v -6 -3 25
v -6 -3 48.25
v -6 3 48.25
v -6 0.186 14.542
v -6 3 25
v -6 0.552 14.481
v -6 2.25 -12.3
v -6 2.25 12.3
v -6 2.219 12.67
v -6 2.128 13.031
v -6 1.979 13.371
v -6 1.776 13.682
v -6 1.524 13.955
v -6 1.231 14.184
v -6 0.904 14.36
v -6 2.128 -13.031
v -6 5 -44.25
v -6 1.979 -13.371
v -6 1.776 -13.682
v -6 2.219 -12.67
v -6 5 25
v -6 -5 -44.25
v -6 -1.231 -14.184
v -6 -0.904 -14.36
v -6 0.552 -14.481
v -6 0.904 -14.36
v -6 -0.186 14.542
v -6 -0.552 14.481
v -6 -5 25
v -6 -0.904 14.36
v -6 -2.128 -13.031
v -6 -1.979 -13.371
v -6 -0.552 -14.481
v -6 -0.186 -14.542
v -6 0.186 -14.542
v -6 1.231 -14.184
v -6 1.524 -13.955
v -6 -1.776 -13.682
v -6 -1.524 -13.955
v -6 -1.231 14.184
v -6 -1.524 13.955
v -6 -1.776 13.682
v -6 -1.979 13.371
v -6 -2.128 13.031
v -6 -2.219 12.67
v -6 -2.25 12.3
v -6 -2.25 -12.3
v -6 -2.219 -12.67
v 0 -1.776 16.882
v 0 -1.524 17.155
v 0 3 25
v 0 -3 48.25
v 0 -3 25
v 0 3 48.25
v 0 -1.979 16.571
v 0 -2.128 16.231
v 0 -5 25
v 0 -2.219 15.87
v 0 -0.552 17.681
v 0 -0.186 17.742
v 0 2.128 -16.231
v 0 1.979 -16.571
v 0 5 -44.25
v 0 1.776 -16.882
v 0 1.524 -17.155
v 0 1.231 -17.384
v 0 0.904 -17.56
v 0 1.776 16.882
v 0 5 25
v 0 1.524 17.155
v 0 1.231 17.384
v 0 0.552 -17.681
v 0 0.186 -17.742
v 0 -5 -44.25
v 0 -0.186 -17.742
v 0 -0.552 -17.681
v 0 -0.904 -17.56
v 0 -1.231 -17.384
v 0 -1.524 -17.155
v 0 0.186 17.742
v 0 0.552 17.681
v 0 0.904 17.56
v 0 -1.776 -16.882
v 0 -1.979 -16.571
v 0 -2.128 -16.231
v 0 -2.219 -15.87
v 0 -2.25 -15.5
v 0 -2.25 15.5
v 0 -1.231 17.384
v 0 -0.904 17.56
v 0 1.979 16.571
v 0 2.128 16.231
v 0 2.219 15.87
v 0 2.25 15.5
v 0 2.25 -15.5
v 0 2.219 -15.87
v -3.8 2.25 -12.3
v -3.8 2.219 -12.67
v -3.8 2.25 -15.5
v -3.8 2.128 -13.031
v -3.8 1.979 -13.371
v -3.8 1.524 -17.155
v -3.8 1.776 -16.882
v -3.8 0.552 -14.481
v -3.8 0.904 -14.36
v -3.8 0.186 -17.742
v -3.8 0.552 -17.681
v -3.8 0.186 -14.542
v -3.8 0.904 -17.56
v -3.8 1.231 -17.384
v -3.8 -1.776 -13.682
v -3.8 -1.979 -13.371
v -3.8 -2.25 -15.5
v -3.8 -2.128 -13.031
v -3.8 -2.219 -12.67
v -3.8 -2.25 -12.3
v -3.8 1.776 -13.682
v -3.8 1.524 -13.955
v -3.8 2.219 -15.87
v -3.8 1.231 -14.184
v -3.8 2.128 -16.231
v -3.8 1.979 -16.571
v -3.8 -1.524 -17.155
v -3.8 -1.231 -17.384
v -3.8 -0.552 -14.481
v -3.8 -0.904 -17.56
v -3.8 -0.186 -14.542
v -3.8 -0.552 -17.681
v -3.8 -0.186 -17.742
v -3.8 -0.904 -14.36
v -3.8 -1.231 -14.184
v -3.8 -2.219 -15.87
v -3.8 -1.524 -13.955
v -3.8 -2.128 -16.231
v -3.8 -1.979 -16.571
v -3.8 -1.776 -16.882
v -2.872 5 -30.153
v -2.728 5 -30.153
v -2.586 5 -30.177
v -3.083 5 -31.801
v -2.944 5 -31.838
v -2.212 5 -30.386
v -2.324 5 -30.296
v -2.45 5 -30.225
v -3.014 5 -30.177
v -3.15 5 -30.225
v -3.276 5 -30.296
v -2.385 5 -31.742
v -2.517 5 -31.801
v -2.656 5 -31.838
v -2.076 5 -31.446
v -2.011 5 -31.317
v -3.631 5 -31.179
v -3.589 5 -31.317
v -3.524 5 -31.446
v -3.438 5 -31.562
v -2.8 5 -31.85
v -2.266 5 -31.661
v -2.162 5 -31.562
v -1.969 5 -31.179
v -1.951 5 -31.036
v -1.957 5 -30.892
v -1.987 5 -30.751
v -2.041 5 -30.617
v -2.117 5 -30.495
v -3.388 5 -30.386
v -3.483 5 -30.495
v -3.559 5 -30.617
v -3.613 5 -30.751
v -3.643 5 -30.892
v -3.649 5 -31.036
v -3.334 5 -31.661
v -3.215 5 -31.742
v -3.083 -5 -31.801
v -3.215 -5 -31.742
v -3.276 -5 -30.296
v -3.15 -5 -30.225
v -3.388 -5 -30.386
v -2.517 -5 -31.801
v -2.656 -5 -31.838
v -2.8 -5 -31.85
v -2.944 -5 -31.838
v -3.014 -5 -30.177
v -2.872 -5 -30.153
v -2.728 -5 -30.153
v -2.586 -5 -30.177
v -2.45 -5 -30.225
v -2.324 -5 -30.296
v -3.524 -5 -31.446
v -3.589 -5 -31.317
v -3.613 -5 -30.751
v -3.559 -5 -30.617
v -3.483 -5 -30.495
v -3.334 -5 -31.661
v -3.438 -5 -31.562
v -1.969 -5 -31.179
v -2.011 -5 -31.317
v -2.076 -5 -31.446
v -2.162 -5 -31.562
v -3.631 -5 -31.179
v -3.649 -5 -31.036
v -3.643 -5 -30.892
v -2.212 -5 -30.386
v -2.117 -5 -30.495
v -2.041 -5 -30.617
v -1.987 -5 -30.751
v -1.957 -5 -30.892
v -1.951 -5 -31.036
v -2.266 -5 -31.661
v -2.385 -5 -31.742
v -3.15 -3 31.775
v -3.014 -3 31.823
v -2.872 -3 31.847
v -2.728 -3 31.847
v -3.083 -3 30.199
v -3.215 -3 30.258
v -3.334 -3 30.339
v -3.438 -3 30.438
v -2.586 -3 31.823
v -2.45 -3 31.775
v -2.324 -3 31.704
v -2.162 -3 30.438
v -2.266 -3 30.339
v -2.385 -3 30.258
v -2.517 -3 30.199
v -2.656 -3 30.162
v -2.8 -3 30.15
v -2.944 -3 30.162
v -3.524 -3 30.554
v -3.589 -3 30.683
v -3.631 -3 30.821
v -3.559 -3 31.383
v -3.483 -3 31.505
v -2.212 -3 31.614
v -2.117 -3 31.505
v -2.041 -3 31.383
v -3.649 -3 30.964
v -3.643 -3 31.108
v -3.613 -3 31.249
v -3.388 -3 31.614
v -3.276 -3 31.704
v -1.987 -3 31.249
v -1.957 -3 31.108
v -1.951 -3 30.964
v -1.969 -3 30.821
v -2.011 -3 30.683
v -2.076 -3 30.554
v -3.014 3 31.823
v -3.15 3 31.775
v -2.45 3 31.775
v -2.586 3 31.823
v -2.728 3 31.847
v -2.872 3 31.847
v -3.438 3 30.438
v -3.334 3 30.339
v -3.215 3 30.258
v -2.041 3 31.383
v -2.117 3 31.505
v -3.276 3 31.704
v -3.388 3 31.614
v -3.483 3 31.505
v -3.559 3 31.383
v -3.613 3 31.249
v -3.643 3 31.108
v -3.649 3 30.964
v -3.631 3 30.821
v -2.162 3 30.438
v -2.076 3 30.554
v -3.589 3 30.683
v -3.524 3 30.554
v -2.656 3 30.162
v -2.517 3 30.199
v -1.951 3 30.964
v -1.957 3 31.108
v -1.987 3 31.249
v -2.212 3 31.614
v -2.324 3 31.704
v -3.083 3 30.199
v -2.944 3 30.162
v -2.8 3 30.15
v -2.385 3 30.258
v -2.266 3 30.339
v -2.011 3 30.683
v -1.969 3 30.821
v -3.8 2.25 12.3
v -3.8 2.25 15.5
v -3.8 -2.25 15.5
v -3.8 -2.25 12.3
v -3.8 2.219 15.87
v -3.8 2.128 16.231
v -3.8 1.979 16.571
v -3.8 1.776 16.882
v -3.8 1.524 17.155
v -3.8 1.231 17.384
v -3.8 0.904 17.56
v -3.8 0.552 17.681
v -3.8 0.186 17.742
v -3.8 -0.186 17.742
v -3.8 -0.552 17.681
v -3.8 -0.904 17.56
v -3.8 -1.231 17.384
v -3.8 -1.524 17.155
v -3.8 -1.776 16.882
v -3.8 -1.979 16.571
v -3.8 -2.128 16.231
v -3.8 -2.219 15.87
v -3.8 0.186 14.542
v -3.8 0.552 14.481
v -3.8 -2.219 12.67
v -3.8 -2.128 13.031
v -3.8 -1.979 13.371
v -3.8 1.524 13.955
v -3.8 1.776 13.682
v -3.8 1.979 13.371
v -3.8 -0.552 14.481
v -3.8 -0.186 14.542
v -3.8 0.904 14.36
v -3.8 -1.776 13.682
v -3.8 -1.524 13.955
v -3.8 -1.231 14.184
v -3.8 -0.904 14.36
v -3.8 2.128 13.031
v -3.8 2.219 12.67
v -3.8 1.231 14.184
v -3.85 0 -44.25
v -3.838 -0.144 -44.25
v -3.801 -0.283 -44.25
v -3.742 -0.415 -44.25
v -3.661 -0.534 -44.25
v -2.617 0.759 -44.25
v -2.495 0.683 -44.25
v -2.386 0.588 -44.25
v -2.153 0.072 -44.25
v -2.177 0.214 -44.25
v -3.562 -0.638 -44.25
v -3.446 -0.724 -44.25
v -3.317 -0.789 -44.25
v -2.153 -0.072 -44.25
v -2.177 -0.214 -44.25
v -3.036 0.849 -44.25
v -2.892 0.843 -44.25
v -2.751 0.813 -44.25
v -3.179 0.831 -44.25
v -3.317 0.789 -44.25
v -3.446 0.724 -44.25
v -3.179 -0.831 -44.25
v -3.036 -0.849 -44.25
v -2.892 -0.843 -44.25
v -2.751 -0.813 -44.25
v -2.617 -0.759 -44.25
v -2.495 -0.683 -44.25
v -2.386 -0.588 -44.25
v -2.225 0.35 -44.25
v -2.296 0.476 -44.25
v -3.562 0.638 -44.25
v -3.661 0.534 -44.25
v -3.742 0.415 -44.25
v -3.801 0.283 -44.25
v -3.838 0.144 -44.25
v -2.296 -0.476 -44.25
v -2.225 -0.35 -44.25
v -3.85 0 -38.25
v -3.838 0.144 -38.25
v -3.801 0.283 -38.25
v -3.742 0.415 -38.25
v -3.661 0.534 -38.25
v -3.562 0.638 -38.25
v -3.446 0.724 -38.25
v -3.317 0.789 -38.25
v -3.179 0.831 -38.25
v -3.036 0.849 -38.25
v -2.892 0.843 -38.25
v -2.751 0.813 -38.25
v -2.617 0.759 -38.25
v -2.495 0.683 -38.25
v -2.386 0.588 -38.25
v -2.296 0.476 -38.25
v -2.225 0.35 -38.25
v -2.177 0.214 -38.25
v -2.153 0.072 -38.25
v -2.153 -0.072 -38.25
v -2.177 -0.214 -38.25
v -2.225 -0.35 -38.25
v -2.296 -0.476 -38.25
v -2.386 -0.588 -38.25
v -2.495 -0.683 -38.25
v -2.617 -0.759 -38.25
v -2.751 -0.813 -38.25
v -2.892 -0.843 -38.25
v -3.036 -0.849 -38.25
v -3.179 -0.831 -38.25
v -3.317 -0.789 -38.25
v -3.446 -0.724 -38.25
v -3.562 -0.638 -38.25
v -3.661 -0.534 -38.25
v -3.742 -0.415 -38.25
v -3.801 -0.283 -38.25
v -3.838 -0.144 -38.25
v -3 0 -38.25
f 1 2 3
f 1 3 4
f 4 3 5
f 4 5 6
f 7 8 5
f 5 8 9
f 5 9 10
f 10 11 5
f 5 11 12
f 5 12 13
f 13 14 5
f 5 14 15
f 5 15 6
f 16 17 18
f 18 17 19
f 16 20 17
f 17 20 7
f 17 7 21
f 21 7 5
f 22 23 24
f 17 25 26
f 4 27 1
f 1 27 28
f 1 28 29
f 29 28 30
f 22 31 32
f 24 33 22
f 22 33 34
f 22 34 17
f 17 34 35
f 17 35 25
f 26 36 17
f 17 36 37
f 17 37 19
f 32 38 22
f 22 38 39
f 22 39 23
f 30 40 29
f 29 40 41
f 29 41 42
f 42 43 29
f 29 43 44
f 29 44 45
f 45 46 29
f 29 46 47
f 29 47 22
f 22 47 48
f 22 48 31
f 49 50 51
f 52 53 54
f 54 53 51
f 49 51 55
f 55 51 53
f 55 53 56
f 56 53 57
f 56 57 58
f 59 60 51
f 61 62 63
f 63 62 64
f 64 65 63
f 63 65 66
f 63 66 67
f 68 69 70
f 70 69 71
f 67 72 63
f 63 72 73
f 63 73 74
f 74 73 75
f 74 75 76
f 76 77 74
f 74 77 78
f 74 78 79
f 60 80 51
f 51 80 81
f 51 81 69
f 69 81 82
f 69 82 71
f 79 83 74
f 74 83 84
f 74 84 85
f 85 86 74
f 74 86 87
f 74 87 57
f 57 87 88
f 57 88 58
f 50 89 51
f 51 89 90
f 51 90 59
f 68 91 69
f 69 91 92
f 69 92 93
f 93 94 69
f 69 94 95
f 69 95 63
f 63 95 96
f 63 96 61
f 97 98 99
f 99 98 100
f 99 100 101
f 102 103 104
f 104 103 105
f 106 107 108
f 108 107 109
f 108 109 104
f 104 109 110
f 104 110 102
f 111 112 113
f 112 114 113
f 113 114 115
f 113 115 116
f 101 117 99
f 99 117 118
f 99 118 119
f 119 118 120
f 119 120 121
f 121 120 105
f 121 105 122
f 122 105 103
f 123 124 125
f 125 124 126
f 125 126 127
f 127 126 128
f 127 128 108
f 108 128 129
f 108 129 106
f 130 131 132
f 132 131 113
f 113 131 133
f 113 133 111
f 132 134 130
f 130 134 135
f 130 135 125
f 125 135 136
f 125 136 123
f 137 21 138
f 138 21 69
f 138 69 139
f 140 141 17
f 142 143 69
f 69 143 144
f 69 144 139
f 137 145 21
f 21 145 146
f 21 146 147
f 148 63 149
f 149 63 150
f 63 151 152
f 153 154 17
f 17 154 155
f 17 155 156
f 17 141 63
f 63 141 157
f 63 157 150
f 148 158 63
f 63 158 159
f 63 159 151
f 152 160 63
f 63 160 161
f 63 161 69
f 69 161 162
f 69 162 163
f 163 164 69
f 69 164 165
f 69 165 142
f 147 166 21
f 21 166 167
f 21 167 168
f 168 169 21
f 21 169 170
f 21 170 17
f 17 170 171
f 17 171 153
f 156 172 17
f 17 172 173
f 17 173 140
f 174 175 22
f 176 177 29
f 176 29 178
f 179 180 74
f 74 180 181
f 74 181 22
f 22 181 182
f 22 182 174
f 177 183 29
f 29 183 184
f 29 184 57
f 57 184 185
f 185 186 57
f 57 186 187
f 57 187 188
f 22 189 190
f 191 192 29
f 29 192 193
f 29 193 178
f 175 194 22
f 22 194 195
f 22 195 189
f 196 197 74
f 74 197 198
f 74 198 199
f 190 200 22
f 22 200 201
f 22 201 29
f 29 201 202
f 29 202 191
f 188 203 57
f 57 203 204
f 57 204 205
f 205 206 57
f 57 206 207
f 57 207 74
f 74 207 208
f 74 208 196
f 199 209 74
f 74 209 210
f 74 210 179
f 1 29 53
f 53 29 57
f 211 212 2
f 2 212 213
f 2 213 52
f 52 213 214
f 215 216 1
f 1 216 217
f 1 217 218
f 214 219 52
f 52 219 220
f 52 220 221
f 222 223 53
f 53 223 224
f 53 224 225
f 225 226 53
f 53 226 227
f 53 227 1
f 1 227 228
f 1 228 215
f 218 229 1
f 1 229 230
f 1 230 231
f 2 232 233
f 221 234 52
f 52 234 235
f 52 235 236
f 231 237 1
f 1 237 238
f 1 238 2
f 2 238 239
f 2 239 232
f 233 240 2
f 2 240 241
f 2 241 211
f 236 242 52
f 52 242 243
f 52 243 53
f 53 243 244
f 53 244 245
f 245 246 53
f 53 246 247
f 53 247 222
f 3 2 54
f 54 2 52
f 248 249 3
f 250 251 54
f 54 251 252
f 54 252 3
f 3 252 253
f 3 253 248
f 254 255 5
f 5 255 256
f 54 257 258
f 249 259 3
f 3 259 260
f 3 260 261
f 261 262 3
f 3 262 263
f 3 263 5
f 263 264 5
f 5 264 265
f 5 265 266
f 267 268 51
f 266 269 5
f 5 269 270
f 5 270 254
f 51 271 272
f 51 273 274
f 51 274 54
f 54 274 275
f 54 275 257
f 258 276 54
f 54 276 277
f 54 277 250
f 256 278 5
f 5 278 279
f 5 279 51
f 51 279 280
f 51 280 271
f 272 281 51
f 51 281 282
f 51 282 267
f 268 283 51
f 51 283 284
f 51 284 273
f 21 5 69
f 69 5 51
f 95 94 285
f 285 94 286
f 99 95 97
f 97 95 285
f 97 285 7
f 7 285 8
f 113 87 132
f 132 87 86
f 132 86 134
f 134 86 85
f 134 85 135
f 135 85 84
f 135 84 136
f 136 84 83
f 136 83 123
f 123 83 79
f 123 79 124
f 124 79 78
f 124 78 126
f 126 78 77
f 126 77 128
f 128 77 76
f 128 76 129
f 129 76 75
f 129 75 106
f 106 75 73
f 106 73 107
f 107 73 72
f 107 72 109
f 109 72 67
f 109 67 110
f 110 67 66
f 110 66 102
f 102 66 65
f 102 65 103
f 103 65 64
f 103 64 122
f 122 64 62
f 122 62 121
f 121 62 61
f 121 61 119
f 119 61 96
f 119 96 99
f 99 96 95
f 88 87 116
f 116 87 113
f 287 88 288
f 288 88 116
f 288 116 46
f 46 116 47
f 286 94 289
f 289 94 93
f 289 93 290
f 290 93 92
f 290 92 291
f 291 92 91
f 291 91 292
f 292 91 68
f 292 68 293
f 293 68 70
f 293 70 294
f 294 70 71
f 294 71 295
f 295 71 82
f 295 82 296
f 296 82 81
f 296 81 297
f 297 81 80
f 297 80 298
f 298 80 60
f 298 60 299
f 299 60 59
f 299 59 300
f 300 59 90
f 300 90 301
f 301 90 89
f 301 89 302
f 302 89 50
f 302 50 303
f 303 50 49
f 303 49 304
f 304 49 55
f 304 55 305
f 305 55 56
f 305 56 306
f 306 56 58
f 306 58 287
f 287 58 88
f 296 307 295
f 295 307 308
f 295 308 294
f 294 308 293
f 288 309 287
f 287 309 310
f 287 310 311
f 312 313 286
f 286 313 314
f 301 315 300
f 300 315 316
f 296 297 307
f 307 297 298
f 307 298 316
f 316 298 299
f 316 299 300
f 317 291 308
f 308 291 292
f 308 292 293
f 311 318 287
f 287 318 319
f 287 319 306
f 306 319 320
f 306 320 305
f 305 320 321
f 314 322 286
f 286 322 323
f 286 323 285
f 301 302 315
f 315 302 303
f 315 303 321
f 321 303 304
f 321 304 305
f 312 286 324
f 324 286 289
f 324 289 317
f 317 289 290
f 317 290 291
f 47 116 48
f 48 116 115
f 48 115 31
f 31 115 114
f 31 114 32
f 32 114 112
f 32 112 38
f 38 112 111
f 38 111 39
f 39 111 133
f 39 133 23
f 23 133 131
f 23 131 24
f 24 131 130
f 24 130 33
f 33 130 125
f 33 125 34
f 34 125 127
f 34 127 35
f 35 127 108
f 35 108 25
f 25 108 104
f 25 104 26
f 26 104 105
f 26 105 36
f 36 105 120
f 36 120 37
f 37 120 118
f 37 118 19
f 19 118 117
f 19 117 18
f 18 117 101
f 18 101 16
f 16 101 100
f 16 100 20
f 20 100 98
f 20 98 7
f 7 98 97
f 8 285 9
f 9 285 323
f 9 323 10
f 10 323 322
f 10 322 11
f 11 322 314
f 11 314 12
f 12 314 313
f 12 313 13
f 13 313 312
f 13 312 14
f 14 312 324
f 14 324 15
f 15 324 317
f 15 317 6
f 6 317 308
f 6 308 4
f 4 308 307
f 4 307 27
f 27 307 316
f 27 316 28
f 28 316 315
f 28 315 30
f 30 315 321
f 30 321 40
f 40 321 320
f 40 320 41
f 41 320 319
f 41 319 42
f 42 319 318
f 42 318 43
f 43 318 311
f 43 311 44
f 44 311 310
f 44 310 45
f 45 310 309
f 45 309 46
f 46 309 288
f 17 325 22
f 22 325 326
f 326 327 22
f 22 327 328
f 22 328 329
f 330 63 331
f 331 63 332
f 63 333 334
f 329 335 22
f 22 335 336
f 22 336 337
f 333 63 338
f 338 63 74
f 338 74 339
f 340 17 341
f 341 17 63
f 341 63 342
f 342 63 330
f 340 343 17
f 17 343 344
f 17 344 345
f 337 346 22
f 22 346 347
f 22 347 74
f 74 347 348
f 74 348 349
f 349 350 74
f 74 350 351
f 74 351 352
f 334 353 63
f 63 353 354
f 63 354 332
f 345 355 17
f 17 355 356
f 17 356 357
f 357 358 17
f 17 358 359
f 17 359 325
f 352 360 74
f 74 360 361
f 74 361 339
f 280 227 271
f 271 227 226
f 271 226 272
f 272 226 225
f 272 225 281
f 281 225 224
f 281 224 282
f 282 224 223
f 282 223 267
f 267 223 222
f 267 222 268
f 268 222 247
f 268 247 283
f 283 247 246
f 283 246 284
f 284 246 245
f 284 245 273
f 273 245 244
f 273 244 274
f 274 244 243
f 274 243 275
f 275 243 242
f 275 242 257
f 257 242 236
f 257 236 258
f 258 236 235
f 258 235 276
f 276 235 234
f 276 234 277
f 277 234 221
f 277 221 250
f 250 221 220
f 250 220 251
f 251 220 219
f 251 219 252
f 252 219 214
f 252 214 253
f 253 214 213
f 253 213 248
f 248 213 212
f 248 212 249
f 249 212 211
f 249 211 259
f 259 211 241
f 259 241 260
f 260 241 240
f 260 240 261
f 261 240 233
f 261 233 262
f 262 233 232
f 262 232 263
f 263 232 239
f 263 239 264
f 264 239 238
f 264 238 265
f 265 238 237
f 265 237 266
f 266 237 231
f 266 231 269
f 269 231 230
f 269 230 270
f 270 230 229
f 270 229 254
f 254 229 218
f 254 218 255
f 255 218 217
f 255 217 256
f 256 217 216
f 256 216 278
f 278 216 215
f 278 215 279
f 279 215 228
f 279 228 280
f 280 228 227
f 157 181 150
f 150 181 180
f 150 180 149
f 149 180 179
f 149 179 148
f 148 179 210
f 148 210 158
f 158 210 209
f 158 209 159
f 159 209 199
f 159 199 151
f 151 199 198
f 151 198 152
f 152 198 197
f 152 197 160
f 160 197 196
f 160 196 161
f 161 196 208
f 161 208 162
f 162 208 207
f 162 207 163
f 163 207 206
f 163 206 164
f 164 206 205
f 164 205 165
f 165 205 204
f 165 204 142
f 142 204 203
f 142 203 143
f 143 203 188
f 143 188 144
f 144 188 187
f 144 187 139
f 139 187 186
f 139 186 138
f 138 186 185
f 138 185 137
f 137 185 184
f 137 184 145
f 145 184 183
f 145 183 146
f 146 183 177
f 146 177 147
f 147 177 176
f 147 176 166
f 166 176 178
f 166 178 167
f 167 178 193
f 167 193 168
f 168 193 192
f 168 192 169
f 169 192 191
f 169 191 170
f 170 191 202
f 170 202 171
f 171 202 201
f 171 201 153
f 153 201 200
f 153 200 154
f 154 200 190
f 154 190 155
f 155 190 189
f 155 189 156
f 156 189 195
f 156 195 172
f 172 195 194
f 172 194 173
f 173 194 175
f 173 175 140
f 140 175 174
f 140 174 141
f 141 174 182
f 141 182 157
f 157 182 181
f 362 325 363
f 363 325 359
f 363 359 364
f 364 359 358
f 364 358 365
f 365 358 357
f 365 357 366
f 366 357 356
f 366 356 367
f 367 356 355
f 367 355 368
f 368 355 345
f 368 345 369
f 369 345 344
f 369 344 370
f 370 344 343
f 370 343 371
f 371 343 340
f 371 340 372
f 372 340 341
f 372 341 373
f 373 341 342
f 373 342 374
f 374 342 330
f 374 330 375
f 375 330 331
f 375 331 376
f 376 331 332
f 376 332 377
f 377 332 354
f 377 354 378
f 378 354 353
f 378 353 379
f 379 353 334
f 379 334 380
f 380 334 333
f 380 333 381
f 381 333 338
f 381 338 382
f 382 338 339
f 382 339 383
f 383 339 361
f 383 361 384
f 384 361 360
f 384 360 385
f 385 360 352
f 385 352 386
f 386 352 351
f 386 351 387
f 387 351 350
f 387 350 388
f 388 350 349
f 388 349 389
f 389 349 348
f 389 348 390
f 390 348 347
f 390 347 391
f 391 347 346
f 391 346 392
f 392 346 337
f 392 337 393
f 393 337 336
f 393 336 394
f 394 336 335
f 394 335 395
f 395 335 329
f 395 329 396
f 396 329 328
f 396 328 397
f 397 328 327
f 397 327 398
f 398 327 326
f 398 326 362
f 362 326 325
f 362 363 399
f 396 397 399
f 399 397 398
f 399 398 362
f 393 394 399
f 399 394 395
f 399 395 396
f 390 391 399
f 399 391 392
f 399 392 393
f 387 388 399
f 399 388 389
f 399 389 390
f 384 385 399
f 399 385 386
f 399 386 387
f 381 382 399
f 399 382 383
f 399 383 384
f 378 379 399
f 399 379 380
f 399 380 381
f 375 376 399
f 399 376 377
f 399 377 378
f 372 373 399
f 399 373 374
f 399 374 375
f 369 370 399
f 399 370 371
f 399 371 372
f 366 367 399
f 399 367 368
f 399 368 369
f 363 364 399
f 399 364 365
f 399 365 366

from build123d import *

# Parameters (mm, degrees)
EXTRUDE_1_DEPTH     = 6
CUT_EXTRUDE_1_DEPTH = 3.8
CUT_EXTRUDE_2_DEPTH = 49.87803699
SKETCH_3_W          = 18.536502565
SKETCH_3_H          = 15.637579157
CUT_EXTRUDE_3_DEPTH = 4
SKETCH_4_W          = 6
SKETCH_4_H          = 10
EXTRUDE_2_DEPTH     = 19.25
SKETCH_5_R          = 0.85
CUT_EXTRUDE_4_DEPTH = 50.639324129
SKETCH_6_R          = 0.85
CUT_EXTRUDE_5_DEPTH = 6


with BuildPart() as part:
    # 草图1 → 凸台-拉伸1 (new body)
    with BuildSketch(Plane(origin=(0, 0, 0), x_dir=(0, 0, -1), z_dir=(1, 0, 0))):
        Polygon((-25, 5), (25, 5), (25, 3), (48.25, 3), (48.25, -3), (25, -3), (25, -5), (-25, -5), (-25, -3), (-48.25, -3), (-48.25, 3), (-25, 3), align=None)
    extrude(amount=-EXTRUDE_1_DEPTH)

    # 草图1<3> → 切除-拉伸1 (cut)
    with BuildSketch(Plane(origin=(0, 0, 0), x_dir=(0, 0, -1), z_dir=(1, 0, 0))):
        with BuildLine():
            Line((-15.5, 2.25), (15.5, 2.25))
            ThreePointArc((15.5, 2.25), (17.75, 0), (15.5, -2.25))
            Line((15.5, -2.25), (-15.5, -2.25))
            ThreePointArc((-15.5, -2.25), (-17.75, 0), (-15.5, 2.25))
        make_face()
    extrude(amount=-CUT_EXTRUDE_1_DEPTH, mode=Mode.SUBTRACT)

    # 草图1<4> → 切除-拉伸2 (cut, through all)
    with BuildSketch(Plane(origin=(0, 0, 0), x_dir=(0, 0, -1), z_dir=(1, 0, 0))):
        with BuildLine():
            Line((-12.3, 2.25), (12.3, 2.25))
            ThreePointArc((12.3, 2.25), (14.55, 0), (12.3, -2.25))
            Line((12.3, -2.25), (-12.3, -2.25))
            ThreePointArc((-12.3, -2.25), (-14.55, 0), (-12.3, 2.25))
        make_face()
    extrude(amount=-CUT_EXTRUDE_2_DEPTH, mode=Mode.SUBTRACT)

    # 草图3 → 切除-拉伸3 (cut)
    with BuildSketch(Plane(origin=(0, 0, -48.25), x_dir=(-1, 0, 0), z_dir=(0, 0, -1))):
        with Locations((1.626975839, 1.766046581)):
            Rectangle(SKETCH_3_W, SKETCH_3_H)
    extrude(amount=-CUT_EXTRUDE_3_DEPTH, mode=Mode.SUBTRACT)

    # 草图4 → 凸台-拉伸2 (add)
    with BuildSketch(Plane(origin=(0, 0, -25), x_dir=(-1, 0, 0), z_dir=(0, 0, -1))):
        with Locations((3, 0)):
            Rectangle(SKETCH_4_W, SKETCH_4_H)
    extrude(amount=EXTRUDE_2_DEPTH)

    # 草图5 → 切除-拉伸4 (cut, through all)
    with BuildSketch(Plane.XZ.offset(5)):
        with Locations(Location((-2.8, 31, 0), (0, 0, 270))):
            Circle(SKETCH_5_R)
        with Locations(Location((-2.8, -31, 0), (0, 0, 270))):
            Circle(SKETCH_5_R)
    extrude(amount=-CUT_EXTRUDE_4_DEPTH, mode=Mode.SUBTRACT)

    # 草图6 → 切除-拉伸5 (cut)
    with BuildSketch(Plane(origin=(0, 0, -44.25), x_dir=(-1, 0, 0), z_dir=(0, 0, -1))):
        with Locations((3, 0)):
            Circle(SKETCH_6_R)
    extrude(amount=-CUT_EXTRUDE_5_DEPTH, mode=Mode.SUBTRACT)


solid = part.part
